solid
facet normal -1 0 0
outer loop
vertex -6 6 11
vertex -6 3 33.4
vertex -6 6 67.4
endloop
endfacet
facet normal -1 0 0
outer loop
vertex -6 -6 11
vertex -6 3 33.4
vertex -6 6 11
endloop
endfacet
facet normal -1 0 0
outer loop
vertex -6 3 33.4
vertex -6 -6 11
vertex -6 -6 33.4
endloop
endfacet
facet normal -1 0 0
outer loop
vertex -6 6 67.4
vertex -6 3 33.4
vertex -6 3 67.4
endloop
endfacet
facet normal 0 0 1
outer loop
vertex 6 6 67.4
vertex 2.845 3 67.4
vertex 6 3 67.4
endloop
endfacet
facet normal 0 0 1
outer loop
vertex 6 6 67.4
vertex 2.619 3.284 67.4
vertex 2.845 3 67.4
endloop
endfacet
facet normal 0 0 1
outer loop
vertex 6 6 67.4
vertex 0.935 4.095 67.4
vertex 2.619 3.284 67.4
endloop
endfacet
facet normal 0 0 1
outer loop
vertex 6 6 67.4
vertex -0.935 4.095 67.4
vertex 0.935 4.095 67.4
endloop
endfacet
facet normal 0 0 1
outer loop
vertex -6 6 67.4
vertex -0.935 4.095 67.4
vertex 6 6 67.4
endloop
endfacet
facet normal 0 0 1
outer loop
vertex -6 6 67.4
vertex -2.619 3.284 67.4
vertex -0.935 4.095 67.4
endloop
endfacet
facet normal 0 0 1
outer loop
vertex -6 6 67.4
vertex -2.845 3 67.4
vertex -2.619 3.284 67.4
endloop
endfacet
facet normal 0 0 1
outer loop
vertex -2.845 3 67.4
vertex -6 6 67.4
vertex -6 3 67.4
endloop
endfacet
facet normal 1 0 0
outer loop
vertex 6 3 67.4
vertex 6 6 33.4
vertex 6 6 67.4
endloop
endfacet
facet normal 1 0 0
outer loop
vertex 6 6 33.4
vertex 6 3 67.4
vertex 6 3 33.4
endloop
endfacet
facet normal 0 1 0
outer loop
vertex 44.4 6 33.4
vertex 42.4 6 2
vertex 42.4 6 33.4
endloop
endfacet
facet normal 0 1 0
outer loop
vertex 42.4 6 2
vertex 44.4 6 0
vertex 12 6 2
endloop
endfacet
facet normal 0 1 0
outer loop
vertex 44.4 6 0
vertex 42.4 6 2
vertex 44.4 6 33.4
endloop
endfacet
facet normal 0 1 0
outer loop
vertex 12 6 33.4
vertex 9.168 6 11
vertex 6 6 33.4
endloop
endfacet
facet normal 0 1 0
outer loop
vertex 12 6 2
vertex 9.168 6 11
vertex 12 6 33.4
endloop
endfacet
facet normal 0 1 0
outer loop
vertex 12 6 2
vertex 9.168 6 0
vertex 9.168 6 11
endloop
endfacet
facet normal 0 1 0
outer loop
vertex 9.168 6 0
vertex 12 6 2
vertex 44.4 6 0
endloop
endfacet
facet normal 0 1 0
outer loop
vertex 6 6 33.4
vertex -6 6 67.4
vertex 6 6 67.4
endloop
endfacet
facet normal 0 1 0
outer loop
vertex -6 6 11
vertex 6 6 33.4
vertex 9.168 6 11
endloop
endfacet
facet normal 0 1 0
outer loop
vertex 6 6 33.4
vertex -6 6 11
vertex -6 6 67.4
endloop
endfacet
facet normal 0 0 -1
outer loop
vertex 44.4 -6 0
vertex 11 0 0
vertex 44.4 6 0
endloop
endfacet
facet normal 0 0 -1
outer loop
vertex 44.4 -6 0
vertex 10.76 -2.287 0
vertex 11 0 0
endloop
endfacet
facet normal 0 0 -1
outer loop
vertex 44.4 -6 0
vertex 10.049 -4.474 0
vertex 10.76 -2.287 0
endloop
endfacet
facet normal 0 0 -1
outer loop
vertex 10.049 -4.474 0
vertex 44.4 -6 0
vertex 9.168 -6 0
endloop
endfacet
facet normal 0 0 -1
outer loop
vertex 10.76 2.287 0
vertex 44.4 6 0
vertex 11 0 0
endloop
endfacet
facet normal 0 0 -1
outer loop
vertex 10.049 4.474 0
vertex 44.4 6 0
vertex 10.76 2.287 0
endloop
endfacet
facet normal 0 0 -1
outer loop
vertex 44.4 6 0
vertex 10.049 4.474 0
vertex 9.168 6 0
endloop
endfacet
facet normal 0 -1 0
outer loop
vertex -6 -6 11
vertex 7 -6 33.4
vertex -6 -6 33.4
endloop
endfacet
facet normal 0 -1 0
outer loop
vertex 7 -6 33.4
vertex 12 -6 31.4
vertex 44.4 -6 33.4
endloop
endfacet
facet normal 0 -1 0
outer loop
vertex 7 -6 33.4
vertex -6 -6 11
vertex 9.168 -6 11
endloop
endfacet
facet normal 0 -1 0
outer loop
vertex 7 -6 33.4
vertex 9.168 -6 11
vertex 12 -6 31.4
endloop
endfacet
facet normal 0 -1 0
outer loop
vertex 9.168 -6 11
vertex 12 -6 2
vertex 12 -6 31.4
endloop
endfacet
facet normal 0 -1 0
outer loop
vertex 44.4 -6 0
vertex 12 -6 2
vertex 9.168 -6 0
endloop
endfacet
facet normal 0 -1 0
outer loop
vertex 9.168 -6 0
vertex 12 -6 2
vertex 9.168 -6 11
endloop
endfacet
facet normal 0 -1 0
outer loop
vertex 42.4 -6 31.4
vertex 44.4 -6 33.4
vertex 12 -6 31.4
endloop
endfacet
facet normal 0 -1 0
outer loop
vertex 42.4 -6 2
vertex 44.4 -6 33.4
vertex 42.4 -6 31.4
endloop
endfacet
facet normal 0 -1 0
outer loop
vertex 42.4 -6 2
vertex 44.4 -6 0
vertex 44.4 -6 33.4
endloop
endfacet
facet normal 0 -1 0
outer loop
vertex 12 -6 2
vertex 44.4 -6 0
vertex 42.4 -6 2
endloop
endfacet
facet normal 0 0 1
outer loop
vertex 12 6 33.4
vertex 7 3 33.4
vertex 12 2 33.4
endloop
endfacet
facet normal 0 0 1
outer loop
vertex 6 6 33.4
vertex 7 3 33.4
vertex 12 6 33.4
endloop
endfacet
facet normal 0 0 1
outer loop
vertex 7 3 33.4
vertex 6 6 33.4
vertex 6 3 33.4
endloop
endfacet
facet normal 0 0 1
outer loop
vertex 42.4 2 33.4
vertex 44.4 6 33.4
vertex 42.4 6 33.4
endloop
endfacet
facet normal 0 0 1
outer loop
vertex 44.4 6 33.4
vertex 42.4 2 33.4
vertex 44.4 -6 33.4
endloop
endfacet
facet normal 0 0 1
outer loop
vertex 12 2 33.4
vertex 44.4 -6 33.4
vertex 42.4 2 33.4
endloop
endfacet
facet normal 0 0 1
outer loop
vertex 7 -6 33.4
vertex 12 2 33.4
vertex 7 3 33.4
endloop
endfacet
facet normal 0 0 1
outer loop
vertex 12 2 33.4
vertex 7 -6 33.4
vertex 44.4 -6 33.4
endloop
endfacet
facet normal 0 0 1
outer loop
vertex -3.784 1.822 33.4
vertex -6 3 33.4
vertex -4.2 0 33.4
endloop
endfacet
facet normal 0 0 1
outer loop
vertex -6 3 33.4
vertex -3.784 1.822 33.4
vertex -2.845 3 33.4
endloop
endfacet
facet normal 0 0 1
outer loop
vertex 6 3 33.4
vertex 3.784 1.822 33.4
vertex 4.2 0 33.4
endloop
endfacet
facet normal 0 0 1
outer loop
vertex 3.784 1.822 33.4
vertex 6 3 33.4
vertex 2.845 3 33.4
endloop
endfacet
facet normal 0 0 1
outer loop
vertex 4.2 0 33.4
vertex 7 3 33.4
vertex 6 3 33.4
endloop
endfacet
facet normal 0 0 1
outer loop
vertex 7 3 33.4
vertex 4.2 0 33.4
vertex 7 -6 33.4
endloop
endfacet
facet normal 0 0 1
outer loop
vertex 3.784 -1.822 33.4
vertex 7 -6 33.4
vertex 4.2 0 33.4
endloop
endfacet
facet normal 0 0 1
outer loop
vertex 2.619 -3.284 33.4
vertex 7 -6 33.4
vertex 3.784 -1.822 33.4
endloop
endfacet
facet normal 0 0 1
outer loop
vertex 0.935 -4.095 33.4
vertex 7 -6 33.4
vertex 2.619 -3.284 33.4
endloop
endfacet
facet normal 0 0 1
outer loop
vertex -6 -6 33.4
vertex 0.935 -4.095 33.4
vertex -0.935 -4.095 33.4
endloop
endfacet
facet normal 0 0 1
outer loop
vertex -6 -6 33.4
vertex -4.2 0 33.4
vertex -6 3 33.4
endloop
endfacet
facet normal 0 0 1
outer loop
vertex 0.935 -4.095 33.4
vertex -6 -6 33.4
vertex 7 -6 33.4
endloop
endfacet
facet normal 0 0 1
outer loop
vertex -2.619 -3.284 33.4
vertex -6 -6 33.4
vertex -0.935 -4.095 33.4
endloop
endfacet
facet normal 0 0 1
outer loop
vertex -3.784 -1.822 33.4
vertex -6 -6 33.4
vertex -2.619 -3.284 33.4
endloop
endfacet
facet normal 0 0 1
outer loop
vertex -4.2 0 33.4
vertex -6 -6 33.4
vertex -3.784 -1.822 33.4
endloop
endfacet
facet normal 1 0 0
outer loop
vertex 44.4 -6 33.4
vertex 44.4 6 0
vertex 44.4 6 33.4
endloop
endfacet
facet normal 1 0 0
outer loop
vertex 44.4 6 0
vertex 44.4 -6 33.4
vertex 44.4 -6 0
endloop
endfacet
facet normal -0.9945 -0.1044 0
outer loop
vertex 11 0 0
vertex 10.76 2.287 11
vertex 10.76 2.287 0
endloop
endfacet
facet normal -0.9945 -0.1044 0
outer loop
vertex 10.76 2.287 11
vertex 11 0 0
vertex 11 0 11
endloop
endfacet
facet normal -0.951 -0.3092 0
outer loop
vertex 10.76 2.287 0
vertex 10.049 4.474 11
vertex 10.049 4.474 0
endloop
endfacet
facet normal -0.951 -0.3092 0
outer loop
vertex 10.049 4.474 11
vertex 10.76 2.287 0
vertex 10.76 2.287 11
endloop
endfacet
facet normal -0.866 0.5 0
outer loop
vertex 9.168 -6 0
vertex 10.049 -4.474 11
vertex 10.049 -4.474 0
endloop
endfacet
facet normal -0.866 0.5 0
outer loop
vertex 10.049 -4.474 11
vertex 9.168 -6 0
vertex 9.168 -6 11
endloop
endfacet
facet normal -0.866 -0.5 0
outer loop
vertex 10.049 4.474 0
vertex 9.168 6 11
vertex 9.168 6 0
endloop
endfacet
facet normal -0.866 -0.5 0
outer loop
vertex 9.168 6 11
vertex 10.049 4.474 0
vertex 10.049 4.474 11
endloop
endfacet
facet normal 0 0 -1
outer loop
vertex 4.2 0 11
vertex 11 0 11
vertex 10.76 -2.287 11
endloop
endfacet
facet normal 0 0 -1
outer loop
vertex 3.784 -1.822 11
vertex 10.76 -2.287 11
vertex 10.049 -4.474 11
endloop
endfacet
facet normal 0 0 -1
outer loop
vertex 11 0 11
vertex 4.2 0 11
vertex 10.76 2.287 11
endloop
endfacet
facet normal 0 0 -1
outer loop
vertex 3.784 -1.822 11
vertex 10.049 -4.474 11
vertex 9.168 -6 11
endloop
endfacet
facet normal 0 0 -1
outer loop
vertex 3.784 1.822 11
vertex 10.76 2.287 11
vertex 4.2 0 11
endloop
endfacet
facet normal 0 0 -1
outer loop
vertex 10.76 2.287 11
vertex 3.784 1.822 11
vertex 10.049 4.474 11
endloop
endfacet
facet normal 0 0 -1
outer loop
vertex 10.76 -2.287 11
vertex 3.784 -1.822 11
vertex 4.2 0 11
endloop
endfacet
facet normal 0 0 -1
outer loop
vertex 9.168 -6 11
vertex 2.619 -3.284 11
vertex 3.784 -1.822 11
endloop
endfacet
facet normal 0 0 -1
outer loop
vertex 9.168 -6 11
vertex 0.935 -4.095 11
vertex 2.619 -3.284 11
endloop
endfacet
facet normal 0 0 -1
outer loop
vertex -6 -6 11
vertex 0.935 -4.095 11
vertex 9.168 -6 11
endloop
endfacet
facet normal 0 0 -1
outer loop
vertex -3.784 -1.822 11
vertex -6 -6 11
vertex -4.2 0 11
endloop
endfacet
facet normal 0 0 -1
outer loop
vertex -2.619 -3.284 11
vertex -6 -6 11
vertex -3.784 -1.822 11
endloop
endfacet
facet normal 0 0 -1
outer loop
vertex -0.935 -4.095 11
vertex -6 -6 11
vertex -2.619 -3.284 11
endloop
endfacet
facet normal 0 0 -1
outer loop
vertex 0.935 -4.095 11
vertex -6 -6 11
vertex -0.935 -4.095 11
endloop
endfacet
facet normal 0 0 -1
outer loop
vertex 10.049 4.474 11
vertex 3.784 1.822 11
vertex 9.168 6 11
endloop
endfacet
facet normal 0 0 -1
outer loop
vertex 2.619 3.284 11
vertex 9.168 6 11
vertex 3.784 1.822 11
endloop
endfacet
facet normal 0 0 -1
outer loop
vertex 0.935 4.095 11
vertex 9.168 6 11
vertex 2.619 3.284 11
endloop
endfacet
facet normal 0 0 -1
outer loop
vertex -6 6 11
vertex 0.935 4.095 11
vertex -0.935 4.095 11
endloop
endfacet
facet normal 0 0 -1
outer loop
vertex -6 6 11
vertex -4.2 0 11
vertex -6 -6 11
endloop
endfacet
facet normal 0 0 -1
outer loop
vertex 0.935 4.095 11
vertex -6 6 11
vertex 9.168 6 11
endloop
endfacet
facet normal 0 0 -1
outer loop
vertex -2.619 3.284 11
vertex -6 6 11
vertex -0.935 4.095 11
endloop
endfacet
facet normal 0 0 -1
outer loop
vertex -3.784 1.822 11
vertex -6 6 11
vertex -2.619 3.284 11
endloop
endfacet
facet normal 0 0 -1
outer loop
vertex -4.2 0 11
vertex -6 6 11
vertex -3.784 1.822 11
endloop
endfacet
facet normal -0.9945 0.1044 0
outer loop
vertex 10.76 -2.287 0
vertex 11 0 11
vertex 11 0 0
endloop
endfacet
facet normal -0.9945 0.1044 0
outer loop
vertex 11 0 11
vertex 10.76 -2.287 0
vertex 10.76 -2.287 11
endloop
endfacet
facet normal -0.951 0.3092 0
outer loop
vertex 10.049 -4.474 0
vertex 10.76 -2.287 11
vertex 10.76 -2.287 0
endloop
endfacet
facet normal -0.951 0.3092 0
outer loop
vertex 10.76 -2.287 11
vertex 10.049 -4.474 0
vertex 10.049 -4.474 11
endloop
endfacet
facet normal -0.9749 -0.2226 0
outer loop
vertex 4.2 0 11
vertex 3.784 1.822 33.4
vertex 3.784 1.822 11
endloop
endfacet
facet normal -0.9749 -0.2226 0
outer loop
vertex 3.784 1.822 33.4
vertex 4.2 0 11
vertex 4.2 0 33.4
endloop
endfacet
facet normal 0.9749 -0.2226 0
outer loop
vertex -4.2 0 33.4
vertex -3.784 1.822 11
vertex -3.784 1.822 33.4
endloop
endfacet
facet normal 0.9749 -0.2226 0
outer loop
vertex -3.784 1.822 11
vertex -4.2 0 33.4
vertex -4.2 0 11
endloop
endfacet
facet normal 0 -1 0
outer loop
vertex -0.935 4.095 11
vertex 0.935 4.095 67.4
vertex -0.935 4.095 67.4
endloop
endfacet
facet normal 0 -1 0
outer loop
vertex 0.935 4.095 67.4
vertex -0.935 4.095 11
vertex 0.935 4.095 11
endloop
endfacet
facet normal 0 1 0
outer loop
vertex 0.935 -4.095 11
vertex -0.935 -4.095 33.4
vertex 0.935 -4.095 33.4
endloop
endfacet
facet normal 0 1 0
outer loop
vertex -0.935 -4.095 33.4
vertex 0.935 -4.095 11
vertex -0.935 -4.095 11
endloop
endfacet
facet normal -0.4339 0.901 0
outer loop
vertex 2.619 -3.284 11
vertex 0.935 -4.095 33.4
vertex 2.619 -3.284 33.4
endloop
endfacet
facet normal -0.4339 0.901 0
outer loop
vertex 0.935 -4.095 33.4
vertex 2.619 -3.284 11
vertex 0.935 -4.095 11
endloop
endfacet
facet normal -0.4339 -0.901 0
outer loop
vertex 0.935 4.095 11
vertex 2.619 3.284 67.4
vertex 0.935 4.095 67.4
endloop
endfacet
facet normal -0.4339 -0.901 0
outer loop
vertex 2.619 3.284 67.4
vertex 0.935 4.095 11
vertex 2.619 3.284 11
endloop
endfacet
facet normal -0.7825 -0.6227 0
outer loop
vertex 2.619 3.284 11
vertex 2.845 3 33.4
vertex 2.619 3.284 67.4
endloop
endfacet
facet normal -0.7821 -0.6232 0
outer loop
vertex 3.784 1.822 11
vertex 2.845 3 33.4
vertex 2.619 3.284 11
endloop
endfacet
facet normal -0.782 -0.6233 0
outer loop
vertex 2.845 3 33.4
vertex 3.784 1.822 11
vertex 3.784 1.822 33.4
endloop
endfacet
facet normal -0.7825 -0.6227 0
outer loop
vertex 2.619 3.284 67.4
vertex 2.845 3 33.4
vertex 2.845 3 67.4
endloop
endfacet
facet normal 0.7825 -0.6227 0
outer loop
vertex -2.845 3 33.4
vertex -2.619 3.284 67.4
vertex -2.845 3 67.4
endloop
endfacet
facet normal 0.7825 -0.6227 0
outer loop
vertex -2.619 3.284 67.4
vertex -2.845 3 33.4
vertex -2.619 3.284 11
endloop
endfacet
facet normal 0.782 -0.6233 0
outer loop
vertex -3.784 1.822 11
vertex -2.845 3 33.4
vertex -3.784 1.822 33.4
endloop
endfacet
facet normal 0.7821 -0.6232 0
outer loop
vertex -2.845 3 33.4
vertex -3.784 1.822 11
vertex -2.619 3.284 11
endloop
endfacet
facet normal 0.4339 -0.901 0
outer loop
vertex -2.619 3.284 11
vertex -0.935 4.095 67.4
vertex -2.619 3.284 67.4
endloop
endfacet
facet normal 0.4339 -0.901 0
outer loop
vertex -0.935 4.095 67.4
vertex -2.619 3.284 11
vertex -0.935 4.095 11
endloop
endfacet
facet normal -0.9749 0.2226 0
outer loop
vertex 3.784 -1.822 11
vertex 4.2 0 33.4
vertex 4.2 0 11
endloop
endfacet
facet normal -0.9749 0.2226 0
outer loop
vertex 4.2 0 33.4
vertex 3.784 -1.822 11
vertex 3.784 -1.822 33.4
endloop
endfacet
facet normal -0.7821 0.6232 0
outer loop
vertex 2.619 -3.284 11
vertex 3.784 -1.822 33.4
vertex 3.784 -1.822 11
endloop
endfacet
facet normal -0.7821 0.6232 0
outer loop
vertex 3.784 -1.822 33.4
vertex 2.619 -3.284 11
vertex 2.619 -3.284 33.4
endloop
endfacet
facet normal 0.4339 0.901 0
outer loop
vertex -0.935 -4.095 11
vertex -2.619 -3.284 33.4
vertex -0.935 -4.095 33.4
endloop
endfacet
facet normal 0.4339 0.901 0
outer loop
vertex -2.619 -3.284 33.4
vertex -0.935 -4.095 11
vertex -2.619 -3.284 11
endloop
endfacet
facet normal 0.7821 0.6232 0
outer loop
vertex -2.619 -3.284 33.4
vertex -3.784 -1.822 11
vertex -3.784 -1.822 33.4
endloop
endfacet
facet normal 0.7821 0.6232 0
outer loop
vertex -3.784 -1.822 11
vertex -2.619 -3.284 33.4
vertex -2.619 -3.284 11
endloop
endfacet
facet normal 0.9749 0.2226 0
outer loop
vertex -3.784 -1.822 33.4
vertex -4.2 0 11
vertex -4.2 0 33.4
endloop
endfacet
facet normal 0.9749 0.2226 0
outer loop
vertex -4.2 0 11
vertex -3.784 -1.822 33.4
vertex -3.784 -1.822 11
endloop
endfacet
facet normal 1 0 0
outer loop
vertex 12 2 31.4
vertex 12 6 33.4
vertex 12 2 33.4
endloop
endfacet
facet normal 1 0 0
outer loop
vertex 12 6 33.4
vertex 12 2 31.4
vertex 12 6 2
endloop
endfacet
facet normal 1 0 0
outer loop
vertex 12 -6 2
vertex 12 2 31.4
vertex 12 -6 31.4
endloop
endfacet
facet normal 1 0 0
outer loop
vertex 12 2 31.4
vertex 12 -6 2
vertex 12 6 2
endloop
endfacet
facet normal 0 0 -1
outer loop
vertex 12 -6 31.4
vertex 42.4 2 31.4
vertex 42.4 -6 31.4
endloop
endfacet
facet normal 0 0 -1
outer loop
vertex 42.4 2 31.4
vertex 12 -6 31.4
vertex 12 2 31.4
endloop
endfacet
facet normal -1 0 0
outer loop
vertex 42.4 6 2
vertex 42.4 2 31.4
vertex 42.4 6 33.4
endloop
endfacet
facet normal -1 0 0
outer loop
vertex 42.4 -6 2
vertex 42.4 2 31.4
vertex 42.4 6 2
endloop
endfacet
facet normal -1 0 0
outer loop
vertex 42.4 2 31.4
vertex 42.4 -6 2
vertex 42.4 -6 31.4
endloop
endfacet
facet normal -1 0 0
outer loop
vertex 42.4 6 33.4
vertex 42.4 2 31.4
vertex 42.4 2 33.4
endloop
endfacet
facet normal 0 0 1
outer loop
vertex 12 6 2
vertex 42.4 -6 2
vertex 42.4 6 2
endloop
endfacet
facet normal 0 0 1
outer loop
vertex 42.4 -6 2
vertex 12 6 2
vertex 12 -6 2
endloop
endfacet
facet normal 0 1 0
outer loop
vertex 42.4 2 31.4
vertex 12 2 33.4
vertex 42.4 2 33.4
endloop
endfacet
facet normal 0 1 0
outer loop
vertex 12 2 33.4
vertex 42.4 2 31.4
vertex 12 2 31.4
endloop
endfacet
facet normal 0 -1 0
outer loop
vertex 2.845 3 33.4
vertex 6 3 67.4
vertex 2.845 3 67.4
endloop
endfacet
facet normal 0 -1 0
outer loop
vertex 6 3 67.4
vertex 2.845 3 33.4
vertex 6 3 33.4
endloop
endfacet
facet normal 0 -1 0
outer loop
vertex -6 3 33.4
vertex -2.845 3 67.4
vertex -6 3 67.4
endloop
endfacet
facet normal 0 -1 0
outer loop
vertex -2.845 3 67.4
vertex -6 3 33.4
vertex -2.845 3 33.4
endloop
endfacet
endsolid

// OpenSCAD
camera_x = 30.4;
camera_y = 13;
camera_z = 29.4;

difference() {
    union() {
        // Main Cylinder
        translate([0, 0, -40]) {
            //cylinder(camera_z + 4 + 40, d=12, d=12);
        }
    
        // Main Cube
        translate([-6, -6, 0]) {
            cube([12, 12, camera_z + 4 + 34]);
        } 
        
        // Camera Holder
        translate([0, -6, 0]) {
            cube([camera_x + 14, 12, camera_z + 4]);
        }
        
        // Mounting Piece
        translate([-50, 4, 11]) {
            // cube([50, 2, camera_z + 4 - 11]);
        }
        
    }
    
    // Axis Mover
    translate([0, 0, -1]) {
        cylinder(12, d=22, d=22);
    }
    
    // Inner Cylinder
    translate([0, 0, 0]) {
        cylinder(camera_z + 6 + 40, d=8.4, d=8.4);
    }
    
    // Camera Holder Hole
    translate([12, -7, 2]) {
        cube([camera_x, 14, camera_z]);
    }
    
    // Cable Gland
    translate([12, 2, 2 + camera_z - 1]) {
        cube([camera_x, 5, 4]);
    }
    
    // Open Cylinder
    translate([-7, -7, camera_z+4]) {
        cube([14, 10, 41]);
    }
}
